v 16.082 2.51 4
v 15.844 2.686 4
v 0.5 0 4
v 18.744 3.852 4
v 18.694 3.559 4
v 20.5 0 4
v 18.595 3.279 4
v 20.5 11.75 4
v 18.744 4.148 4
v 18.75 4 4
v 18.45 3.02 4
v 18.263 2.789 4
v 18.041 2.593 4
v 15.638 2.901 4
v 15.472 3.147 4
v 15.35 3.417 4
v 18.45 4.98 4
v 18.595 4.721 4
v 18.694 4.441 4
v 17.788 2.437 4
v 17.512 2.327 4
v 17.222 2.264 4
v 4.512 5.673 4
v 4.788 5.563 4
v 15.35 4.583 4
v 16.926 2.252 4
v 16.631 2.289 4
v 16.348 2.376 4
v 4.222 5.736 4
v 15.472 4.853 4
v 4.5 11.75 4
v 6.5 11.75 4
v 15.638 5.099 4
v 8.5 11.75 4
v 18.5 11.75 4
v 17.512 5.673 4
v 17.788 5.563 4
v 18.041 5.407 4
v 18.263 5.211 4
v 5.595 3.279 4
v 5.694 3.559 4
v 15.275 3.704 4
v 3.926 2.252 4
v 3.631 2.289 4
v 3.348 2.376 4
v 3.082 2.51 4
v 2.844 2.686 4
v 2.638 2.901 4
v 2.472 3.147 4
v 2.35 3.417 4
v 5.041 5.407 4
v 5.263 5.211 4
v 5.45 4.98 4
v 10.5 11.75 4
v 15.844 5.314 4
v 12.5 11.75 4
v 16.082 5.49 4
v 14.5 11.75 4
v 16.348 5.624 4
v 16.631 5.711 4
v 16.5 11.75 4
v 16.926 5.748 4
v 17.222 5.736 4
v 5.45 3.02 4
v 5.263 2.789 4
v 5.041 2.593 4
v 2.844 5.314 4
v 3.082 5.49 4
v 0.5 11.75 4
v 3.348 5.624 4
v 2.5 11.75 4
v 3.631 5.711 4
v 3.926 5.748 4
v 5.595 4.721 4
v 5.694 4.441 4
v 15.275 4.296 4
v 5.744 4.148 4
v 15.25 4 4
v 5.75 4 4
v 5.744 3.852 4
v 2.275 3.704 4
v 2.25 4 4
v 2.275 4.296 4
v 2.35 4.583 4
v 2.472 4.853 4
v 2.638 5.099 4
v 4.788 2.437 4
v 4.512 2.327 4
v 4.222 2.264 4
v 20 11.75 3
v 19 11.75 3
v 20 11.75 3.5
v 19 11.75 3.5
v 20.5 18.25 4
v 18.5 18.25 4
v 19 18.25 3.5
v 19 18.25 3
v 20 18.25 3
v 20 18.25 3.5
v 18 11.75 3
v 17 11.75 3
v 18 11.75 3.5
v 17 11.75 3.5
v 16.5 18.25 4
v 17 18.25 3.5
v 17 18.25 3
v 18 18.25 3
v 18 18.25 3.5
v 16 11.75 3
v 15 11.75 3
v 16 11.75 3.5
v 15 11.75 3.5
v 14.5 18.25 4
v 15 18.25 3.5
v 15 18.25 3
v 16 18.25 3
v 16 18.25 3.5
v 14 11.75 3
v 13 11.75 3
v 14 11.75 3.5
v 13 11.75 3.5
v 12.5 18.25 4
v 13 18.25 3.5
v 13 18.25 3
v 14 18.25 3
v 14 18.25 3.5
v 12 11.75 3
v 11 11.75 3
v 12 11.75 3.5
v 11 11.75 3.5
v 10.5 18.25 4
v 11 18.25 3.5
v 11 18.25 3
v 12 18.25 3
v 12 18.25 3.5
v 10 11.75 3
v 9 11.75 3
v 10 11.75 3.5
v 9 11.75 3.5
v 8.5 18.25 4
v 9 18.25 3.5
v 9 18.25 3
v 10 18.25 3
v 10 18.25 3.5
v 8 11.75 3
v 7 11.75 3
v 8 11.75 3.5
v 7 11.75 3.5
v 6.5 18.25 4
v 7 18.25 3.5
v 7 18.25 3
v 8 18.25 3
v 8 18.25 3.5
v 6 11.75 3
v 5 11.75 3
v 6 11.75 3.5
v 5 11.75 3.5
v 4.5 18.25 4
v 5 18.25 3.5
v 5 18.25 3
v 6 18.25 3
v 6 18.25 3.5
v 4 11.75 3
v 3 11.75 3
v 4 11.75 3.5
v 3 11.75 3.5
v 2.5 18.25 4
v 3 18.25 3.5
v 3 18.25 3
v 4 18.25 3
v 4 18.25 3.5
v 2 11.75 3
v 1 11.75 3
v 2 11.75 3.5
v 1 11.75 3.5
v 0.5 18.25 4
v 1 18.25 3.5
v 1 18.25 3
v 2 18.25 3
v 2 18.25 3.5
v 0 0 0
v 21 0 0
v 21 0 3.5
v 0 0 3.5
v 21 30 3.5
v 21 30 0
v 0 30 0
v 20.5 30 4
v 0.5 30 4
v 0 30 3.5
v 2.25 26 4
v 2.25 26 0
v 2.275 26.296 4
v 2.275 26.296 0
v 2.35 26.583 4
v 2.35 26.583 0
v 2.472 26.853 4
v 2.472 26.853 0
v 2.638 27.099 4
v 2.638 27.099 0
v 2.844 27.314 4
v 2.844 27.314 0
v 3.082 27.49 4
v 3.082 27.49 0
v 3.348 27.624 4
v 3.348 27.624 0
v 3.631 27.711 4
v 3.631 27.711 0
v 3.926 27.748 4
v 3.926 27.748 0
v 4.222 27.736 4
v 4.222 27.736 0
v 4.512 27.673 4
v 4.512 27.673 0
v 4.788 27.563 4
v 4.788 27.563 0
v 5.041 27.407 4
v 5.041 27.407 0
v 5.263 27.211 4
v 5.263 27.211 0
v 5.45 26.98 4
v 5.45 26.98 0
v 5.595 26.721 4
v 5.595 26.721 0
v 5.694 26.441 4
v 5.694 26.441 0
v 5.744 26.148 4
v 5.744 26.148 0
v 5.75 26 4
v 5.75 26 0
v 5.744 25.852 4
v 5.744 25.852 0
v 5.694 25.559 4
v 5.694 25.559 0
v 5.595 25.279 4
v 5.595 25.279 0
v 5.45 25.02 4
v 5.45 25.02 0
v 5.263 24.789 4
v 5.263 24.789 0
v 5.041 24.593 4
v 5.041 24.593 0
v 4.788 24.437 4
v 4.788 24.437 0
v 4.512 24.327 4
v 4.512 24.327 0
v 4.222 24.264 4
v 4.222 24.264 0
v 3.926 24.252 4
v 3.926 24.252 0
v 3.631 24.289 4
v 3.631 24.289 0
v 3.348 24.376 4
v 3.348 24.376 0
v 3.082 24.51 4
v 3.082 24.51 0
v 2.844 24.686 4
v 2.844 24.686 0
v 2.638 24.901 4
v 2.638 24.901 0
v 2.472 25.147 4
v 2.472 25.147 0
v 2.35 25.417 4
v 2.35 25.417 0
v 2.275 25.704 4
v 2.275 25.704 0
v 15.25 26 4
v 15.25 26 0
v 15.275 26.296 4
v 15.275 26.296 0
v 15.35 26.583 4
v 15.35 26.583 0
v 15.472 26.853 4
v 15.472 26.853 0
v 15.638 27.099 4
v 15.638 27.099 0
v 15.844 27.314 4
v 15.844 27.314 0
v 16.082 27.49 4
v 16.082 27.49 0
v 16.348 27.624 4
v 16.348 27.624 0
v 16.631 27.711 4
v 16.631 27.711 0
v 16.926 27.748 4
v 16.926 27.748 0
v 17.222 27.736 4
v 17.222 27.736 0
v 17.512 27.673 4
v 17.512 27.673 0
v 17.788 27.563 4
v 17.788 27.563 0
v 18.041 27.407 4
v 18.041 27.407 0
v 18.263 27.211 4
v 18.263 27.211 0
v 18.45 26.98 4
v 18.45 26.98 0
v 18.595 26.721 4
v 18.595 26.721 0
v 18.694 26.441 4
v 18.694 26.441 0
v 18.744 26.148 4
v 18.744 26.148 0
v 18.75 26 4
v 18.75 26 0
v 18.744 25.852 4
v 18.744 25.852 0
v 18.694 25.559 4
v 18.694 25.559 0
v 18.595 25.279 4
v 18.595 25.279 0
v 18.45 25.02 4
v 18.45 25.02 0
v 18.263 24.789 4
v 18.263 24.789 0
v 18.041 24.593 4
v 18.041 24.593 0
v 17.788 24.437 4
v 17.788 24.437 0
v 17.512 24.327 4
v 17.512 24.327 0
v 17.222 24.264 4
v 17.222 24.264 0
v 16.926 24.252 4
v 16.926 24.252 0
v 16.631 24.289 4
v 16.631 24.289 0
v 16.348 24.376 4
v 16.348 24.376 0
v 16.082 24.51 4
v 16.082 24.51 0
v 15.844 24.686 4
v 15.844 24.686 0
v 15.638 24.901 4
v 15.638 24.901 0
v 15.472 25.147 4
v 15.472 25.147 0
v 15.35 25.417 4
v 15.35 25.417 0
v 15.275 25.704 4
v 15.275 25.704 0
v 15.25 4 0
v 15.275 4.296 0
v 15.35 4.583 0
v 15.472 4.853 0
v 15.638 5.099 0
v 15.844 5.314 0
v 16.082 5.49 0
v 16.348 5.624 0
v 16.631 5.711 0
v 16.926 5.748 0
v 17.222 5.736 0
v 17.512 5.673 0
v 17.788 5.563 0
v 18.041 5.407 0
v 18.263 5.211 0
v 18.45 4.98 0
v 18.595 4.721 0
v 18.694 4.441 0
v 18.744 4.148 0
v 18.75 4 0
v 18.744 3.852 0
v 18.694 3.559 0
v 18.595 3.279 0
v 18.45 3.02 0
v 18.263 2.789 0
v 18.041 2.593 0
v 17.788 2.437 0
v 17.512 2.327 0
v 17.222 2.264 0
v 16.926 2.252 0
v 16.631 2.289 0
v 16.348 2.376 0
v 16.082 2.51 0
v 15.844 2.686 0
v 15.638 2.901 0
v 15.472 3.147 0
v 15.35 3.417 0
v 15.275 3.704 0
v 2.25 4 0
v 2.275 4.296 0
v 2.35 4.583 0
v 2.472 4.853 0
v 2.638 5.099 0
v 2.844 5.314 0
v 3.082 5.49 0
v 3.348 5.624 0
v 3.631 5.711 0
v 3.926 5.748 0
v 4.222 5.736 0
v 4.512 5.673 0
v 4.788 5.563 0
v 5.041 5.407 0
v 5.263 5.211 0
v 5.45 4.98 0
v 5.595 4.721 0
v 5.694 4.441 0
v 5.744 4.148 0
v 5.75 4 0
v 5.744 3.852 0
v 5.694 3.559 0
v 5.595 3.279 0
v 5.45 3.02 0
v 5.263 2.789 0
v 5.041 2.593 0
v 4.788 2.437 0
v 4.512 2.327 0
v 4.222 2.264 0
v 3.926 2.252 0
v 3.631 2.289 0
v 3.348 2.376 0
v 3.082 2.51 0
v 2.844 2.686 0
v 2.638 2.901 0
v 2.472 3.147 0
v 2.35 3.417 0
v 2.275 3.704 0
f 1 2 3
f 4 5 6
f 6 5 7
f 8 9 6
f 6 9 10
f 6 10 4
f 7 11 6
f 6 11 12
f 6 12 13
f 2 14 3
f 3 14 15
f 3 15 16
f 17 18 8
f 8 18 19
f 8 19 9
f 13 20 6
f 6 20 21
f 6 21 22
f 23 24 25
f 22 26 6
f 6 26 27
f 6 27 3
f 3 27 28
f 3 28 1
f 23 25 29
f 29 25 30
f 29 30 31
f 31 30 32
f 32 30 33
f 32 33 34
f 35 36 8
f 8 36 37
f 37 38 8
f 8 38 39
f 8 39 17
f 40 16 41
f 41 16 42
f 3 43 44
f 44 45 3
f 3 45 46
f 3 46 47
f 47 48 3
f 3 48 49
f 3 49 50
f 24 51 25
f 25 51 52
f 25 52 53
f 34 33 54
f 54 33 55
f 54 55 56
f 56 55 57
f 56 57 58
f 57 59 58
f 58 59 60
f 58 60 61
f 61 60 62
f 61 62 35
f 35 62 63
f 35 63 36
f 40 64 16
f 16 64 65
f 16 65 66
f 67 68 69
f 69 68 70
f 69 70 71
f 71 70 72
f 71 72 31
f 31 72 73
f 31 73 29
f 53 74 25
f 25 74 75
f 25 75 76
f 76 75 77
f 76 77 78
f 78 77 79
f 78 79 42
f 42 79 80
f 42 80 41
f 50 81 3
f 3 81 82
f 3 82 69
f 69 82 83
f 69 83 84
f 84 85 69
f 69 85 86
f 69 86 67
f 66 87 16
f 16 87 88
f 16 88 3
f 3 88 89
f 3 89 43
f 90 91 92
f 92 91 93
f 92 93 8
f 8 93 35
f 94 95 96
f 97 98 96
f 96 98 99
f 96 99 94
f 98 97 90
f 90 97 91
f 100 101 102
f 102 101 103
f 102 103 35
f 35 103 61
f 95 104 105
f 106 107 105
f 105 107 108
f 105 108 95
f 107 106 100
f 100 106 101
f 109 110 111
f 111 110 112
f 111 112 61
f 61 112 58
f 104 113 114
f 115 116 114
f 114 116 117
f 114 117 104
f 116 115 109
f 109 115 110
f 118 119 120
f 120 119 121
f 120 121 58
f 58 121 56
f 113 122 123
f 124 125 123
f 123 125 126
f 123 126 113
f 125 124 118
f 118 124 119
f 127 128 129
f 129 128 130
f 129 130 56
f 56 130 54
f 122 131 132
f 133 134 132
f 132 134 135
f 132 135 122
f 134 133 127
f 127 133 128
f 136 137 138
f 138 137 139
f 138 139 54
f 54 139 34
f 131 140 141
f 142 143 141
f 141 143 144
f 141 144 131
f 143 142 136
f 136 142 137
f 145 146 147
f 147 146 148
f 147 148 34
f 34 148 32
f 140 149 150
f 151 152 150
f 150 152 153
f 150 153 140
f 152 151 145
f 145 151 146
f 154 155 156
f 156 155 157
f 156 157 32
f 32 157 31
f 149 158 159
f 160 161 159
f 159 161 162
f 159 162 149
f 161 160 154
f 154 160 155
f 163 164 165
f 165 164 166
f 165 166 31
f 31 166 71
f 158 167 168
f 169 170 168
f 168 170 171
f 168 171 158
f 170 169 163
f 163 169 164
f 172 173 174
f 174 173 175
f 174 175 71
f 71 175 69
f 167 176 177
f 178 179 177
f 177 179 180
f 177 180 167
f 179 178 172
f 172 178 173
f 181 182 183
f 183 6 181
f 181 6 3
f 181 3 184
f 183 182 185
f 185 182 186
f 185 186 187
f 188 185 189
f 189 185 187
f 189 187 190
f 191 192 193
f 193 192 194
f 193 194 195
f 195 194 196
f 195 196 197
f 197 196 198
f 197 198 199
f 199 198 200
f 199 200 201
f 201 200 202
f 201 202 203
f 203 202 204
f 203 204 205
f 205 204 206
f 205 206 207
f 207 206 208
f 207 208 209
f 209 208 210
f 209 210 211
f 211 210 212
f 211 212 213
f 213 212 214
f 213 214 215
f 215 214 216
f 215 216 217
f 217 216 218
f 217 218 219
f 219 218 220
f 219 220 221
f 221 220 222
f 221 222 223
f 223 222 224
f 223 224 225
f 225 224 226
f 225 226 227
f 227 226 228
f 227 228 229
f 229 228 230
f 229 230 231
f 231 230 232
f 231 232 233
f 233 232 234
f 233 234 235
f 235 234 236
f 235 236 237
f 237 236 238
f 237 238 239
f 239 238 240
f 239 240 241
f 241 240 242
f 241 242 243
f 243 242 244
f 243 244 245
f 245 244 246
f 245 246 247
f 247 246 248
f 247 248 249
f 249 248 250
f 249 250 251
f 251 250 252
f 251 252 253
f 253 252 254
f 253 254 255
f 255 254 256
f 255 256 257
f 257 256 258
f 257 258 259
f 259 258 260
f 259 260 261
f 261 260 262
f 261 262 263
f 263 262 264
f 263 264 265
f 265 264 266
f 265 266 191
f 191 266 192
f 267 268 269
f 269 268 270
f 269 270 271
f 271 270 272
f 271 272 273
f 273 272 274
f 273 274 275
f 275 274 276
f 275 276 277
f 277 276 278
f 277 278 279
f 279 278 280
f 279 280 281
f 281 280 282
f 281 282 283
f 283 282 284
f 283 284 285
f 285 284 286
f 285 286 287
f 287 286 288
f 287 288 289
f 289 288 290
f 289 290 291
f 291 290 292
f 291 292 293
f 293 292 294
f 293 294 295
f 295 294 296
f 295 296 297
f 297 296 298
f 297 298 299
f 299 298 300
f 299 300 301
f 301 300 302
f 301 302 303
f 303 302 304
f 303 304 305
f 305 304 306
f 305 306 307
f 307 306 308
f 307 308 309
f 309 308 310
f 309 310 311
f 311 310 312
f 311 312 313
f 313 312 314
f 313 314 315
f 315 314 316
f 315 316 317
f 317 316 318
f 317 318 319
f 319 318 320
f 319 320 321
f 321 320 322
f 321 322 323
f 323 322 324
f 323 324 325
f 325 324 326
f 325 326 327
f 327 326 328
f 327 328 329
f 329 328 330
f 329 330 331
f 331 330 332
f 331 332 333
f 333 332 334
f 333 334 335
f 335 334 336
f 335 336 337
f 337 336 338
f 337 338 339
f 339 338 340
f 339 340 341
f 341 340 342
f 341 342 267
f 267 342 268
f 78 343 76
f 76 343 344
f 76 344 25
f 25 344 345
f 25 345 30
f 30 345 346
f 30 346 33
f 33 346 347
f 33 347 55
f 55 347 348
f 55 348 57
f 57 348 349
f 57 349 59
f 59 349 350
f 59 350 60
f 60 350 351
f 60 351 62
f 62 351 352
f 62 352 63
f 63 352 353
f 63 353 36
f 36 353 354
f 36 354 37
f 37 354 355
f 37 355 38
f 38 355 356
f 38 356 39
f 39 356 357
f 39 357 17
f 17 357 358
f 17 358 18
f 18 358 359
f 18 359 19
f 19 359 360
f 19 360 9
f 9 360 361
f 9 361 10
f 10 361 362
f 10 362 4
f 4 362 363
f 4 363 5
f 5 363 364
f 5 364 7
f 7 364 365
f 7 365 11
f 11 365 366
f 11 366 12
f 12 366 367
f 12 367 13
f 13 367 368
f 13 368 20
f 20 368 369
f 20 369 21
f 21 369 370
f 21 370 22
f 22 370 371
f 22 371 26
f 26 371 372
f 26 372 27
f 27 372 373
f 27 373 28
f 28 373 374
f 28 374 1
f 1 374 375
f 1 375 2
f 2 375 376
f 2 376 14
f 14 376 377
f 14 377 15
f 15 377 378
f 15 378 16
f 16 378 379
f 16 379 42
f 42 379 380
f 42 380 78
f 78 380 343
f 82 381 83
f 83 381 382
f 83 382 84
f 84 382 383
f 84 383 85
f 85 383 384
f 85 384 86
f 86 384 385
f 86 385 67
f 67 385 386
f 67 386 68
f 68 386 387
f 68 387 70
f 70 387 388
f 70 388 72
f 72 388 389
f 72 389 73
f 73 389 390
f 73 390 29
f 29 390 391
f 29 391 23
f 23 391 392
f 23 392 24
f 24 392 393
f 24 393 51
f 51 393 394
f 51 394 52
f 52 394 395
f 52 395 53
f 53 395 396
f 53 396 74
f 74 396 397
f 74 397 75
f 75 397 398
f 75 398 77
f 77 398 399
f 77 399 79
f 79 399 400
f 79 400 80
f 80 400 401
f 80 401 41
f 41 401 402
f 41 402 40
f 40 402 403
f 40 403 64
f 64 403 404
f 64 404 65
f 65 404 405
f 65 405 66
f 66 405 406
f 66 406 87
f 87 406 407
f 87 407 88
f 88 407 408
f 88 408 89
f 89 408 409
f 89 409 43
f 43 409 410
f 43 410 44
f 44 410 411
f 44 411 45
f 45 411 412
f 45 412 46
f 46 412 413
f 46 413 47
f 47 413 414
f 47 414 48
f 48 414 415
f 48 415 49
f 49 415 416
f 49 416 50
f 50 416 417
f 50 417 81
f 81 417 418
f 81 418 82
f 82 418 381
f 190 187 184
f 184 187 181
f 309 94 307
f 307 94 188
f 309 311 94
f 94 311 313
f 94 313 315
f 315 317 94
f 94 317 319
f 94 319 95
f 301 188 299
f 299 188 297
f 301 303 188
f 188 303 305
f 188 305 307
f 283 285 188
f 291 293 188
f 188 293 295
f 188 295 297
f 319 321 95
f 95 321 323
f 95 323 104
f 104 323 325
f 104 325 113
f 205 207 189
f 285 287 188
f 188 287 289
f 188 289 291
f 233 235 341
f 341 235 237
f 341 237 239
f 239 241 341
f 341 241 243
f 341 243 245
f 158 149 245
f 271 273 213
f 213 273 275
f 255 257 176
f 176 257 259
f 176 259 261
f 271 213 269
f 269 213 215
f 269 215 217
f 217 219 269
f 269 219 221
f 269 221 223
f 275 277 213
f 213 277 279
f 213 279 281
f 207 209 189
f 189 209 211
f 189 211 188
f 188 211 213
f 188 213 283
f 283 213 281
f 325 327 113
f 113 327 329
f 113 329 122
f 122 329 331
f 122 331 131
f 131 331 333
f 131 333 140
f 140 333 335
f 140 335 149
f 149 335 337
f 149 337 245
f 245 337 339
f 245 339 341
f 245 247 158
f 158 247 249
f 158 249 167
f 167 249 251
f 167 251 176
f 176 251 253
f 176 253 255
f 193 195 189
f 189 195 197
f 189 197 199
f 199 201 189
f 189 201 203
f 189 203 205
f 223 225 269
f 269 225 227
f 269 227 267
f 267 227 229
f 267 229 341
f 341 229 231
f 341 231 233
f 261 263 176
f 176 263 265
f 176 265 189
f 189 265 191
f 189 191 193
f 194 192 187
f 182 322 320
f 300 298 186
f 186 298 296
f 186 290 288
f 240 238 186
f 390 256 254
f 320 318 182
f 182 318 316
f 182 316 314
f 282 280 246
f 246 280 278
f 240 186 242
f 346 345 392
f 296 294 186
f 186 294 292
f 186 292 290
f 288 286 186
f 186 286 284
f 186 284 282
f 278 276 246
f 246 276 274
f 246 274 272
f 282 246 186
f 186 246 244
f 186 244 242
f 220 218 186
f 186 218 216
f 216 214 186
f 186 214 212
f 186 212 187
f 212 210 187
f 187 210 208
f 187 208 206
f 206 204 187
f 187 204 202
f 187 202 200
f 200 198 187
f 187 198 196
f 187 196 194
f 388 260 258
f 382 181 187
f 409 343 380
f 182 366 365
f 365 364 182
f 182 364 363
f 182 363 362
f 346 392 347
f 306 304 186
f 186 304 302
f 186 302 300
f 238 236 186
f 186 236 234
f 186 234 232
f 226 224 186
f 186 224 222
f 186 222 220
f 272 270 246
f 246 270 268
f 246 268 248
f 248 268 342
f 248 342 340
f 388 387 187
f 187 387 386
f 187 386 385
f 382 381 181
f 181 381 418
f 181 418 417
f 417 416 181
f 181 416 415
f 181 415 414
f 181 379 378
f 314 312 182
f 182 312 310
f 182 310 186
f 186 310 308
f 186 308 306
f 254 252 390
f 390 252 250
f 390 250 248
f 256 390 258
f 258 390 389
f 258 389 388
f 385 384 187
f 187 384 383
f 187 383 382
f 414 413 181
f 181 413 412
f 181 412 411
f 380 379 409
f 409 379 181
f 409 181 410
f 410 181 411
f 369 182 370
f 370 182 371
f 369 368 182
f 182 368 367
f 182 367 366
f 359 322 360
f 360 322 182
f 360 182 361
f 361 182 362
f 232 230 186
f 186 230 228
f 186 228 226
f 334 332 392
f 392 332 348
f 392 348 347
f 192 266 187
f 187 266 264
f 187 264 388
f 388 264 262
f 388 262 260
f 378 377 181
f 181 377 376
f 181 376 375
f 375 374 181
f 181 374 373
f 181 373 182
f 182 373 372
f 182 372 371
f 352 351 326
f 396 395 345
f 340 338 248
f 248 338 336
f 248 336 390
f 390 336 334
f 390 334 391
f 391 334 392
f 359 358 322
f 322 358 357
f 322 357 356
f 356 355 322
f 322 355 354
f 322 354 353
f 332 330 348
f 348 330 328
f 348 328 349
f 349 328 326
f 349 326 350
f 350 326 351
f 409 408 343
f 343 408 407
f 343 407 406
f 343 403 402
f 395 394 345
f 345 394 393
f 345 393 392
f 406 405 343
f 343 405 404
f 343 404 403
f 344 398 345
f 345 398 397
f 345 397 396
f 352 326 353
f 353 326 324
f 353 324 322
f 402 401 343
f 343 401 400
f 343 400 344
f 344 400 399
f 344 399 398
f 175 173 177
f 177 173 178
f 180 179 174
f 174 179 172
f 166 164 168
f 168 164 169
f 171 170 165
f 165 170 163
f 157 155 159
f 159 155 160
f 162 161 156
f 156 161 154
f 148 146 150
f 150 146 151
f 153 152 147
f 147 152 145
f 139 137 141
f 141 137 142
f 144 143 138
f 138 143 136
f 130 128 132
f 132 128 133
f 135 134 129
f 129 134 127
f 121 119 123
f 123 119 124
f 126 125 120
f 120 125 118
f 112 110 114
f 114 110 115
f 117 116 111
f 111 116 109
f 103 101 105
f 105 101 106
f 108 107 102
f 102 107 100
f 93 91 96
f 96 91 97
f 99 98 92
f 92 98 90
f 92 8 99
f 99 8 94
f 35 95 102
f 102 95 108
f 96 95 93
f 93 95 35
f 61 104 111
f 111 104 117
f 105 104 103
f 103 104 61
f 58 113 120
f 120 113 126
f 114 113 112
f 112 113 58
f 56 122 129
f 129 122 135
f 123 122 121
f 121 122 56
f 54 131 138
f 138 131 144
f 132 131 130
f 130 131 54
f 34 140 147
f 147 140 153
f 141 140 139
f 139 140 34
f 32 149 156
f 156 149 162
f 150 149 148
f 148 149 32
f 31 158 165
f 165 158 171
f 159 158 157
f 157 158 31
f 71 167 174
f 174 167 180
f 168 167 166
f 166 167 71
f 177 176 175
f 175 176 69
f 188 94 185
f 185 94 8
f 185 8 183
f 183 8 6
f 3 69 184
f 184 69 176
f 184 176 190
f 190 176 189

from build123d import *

# Parameters (mm, degrees)
SKETCH1_W           = 21
SKETCH1_H           = 30
SKETCH1_R           = 1.75
BOSS_EXTRUDE1_DEPTH = 4
SKETCH2_W           = 21
SKETCH2_H           = 6.5
CUT_EXTRUDE1_DEPTH  = 1
SKETCH3_W           = 1
SKETCH3_H           = 6.5
BOSS_EXTRUDE2_DEPTH = 1
CHAMFER1_SIZE       = 0.5
CHAMFER2_SIZE       = 0.5


with BuildPart() as part:
    # Sketch1 → Boss-Extrude1 (new body)
    with BuildSketch(Plane.XY):
        with Locations((10.5, 15)):
            Rectangle(SKETCH1_W, SKETCH1_H)
        with Locations((4, 4)):
            Circle(SKETCH1_R, mode=Mode.SUBTRACT)
        with Locations((17, 4)):
            Circle(SKETCH1_R, mode=Mode.SUBTRACT)
        with Locations((17, 26)):
            Circle(SKETCH1_R, mode=Mode.SUBTRACT)
        with Locations((4, 26)):
            Circle(SKETCH1_R, mode=Mode.SUBTRACT)
    extrude(amount=BOSS_EXTRUDE1_DEPTH)

    # Sketch2 → Cut-Extrude1 (cut)
    with BuildSketch(Plane.XY.offset(4)):
        with Locations((10.5, 15)):
            Rectangle(SKETCH2_W, SKETCH2_H)
    extrude(amount=-CUT_EXTRUDE1_DEPTH, mode=Mode.SUBTRACT)

    # Sketch3 → Boss-Extrude2 (add)
    with BuildSketch(Plane.XY.offset(3)):
        with Locations((0.5, 15)):
            Rectangle(SKETCH3_W, SKETCH3_H)
        with Locations((2.5, 15)):
            Rectangle(SKETCH3_W, SKETCH3_H)
        with Locations((4.5, 15)):
            Rectangle(SKETCH3_W, SKETCH3_H)
        with Locations((6.5, 15)):
            Rectangle(SKETCH3_W, SKETCH3_H)
        with Locations((8.5, 15)):
            Rectangle(SKETCH3_W, SKETCH3_H)
        with Locations((10.5, 15)):
            Rectangle(SKETCH3_W, SKETCH3_H)
        with Locations((12.5, 15)):
            Rectangle(SKETCH3_W, SKETCH3_H)
        with Locations((14.5, 15)):
            Rectangle(SKETCH3_W, SKETCH3_H)
        with Locations((16.5, 15)):
            Rectangle(SKETCH3_W, SKETCH3_H)
        with Locations((18.5, 15)):
            Rectangle(SKETCH3_W, SKETCH3_H)
        with Locations((20.5, 15)):
            Rectangle(SKETCH3_W, SKETCH3_H)
    extrude(amount=BOSS_EXTRUDE2_DEPTH)

    # Chamfer1
    chamfer1_edges = [part.edges().sort_by_distance(p)[0] for p in [
        (8, 15, 4),
        (9, 15, 4),
        (10, 15, 4),
        (11, 15, 4),
        (12, 15, 4),
        (13, 15, 4),
        (14, 15, 4),
        (15, 15, 4),
        (16, 15, 4),
        (17, 15, 4),
        (18, 15, 4),
        (19, 15, 4),
        (20, 15, 4),
        (1, 15, 4),
        (2, 15, 4),
        (3, 15, 4),
        (4, 15, 4),
        (5, 15, 4),
        (6, 15, 4),
        (7, 15, 4),
    ]]
    chamfer(chamfer1_edges, length=CHAMFER1_SIZE - 0.0001)  # a hair under: the kernel refuses the full size

    # Chamfer2
    chamfer2_edges = [part.edges().sort_by_distance(p)[0] for p in [
        (21, 15, 4),
        (0, 15, 4),
    ]]
    chamfer(chamfer2_edges, length=CHAMFER2_SIZE)


solid = part.part
